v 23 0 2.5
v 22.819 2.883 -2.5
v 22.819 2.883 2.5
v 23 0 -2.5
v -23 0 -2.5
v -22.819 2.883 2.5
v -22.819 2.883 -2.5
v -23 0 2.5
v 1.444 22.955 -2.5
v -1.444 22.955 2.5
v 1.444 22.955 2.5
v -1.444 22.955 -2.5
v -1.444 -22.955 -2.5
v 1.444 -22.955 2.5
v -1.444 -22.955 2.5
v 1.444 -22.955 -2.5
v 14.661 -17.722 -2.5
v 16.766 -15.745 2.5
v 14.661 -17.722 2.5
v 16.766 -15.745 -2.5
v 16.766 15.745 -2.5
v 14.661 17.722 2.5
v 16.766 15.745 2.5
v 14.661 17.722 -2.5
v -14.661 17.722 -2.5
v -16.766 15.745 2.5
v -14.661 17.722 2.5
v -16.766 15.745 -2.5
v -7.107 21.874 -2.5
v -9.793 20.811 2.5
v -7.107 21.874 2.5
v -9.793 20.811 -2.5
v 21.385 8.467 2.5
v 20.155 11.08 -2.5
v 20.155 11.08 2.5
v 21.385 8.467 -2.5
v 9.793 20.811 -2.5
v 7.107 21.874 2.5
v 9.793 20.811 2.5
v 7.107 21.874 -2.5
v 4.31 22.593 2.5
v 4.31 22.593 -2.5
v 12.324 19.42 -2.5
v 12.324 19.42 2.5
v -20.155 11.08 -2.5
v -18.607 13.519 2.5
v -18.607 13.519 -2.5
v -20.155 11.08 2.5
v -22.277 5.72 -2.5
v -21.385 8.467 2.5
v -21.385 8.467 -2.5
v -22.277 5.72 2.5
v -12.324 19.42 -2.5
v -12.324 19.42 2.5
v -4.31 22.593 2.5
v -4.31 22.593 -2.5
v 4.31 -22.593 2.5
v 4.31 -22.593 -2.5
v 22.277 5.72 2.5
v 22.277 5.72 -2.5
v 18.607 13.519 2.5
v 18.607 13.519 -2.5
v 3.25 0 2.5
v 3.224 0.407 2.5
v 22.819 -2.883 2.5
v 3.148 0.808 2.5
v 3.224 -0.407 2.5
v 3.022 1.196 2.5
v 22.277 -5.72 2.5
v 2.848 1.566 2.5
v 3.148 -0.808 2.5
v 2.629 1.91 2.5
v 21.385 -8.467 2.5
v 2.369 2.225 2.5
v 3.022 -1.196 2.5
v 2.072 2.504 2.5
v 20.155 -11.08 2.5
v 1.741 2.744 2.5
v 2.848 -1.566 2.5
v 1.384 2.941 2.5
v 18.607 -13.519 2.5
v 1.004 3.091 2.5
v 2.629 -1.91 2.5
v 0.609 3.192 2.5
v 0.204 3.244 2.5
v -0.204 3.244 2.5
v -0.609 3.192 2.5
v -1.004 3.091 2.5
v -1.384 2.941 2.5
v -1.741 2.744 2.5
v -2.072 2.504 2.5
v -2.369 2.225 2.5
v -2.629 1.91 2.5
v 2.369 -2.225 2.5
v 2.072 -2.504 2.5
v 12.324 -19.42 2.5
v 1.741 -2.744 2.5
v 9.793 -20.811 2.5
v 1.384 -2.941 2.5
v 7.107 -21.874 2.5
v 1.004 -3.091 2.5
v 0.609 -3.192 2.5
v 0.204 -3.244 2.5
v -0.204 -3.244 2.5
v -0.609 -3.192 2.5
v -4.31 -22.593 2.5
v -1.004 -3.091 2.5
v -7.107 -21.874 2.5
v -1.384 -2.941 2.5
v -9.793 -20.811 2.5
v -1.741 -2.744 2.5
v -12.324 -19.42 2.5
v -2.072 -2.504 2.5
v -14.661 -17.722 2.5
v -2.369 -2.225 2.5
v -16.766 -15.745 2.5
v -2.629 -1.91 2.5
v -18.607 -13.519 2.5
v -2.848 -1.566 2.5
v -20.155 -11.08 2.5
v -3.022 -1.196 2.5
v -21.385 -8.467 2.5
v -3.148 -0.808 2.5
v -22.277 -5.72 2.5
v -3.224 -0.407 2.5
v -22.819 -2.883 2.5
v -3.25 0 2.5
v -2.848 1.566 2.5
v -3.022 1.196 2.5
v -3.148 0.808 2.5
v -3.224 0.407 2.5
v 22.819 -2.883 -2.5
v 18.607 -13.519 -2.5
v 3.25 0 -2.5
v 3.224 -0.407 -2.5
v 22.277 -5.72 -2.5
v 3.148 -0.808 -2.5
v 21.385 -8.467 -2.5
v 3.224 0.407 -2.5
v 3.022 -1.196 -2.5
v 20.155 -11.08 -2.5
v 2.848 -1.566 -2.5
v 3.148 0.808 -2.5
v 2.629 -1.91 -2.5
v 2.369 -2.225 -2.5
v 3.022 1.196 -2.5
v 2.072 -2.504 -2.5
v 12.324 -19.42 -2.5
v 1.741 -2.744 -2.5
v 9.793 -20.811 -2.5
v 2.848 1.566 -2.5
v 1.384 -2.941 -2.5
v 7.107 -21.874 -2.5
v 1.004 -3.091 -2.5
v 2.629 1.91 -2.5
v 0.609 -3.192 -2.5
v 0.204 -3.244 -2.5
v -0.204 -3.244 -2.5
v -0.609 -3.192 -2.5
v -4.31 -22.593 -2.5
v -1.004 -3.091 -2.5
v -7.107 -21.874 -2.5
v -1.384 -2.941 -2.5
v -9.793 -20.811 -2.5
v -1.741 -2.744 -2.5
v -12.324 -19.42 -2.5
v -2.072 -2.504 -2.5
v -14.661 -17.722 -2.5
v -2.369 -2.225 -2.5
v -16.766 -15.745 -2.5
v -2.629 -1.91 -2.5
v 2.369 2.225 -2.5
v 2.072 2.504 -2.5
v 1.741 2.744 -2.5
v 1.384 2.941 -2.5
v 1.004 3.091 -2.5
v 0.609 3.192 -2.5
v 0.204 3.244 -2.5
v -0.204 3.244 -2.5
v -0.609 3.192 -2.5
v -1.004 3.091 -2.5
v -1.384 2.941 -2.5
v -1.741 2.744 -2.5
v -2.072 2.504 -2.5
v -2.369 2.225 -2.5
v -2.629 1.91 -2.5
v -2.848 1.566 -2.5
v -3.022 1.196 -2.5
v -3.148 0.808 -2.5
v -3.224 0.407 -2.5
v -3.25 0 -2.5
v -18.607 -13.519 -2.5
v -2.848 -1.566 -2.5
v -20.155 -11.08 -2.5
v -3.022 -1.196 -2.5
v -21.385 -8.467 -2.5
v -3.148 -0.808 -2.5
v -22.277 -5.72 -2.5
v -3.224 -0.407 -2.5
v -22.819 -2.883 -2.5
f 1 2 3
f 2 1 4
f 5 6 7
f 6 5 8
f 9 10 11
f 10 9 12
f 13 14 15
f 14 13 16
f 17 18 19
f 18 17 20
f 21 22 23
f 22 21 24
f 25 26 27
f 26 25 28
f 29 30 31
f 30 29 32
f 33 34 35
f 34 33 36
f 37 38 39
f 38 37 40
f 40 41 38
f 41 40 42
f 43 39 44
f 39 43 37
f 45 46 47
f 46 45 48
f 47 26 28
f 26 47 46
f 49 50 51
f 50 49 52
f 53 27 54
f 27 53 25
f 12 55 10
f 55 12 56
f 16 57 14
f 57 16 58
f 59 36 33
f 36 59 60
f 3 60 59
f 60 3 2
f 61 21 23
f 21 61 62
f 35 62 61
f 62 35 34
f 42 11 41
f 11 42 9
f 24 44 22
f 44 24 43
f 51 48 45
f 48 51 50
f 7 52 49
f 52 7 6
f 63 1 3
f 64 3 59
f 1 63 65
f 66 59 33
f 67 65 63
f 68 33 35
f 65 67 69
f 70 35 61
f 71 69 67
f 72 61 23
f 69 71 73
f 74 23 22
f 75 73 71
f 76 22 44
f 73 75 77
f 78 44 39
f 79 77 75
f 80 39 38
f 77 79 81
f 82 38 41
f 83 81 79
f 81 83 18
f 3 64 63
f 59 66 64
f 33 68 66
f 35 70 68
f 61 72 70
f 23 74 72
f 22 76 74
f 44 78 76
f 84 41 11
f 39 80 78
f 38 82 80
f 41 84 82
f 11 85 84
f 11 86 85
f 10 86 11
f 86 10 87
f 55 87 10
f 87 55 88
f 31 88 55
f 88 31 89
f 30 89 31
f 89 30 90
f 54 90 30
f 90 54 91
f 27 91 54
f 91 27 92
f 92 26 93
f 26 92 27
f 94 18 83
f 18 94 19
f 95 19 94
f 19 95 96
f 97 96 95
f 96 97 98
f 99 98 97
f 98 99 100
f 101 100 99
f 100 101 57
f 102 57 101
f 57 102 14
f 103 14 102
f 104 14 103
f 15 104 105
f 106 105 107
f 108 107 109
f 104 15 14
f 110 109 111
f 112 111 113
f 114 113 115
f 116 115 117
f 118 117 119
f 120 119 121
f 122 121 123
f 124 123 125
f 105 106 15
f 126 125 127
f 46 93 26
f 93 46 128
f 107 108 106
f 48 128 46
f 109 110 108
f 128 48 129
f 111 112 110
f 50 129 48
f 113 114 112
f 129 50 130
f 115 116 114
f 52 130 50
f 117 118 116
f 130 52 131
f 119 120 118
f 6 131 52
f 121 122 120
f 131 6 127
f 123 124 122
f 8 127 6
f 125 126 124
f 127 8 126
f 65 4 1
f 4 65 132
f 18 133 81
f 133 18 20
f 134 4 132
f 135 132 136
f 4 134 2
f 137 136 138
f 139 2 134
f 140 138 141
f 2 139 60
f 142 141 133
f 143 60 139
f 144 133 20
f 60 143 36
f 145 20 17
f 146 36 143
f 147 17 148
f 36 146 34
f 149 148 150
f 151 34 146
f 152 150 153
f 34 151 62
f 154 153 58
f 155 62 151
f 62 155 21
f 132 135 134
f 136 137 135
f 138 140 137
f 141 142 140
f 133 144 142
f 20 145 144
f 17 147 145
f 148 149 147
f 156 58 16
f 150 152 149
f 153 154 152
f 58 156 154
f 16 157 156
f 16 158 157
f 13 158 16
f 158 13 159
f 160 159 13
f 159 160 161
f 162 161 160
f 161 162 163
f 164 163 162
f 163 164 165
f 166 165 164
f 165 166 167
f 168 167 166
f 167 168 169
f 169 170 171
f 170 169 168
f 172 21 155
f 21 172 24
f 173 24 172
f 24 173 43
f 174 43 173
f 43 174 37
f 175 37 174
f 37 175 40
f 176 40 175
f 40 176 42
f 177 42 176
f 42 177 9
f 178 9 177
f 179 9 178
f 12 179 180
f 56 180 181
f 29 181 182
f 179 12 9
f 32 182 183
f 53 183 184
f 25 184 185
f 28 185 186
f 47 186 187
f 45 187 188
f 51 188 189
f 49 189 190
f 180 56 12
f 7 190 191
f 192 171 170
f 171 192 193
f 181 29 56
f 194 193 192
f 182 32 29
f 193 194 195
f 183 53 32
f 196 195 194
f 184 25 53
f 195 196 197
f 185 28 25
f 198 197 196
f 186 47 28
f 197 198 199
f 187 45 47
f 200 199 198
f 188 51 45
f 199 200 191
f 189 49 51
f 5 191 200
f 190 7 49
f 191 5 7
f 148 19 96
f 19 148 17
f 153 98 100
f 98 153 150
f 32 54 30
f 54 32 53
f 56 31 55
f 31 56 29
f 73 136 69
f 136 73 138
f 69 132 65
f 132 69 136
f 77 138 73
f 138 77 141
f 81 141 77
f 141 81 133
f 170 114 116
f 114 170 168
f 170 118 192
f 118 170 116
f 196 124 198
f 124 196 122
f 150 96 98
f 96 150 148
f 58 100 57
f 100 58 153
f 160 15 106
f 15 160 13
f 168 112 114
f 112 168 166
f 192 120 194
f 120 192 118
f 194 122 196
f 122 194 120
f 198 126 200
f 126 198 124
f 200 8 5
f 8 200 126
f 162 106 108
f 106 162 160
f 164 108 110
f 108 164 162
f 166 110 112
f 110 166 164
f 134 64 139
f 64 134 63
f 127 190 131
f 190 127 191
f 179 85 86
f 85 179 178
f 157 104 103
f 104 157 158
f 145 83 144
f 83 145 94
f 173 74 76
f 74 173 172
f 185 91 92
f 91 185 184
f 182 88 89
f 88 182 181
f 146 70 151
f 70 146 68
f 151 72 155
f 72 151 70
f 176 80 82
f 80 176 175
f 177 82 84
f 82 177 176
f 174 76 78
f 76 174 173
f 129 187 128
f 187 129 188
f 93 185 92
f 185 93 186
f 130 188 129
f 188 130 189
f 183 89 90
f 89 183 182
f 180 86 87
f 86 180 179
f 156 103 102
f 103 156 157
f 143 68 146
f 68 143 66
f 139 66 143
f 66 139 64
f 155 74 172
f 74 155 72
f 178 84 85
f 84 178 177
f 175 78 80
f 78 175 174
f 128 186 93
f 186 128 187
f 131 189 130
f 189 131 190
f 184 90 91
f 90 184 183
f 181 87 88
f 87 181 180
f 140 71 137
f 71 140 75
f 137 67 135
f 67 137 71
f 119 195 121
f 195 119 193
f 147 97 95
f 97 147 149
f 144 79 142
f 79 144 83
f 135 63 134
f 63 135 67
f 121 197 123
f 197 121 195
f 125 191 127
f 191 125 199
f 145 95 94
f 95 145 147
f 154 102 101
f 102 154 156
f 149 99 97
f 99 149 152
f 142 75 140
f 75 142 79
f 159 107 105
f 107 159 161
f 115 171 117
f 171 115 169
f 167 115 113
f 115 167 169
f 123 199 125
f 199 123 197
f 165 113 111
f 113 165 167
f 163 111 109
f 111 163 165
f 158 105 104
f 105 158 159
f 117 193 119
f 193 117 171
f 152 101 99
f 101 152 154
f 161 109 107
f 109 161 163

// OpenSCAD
$fn = 50;


difference() {
	union() {
		translate(v = [0, 0, -2.5000000000]) {
			cylinder(h = 5, r = 23.0000000000);
		}
	}
	union() {
		translate(v = [0, 0, -100.0000000000]) {
			cylinder(h = 200, r = 3.2500000000);
		}
	}
}
